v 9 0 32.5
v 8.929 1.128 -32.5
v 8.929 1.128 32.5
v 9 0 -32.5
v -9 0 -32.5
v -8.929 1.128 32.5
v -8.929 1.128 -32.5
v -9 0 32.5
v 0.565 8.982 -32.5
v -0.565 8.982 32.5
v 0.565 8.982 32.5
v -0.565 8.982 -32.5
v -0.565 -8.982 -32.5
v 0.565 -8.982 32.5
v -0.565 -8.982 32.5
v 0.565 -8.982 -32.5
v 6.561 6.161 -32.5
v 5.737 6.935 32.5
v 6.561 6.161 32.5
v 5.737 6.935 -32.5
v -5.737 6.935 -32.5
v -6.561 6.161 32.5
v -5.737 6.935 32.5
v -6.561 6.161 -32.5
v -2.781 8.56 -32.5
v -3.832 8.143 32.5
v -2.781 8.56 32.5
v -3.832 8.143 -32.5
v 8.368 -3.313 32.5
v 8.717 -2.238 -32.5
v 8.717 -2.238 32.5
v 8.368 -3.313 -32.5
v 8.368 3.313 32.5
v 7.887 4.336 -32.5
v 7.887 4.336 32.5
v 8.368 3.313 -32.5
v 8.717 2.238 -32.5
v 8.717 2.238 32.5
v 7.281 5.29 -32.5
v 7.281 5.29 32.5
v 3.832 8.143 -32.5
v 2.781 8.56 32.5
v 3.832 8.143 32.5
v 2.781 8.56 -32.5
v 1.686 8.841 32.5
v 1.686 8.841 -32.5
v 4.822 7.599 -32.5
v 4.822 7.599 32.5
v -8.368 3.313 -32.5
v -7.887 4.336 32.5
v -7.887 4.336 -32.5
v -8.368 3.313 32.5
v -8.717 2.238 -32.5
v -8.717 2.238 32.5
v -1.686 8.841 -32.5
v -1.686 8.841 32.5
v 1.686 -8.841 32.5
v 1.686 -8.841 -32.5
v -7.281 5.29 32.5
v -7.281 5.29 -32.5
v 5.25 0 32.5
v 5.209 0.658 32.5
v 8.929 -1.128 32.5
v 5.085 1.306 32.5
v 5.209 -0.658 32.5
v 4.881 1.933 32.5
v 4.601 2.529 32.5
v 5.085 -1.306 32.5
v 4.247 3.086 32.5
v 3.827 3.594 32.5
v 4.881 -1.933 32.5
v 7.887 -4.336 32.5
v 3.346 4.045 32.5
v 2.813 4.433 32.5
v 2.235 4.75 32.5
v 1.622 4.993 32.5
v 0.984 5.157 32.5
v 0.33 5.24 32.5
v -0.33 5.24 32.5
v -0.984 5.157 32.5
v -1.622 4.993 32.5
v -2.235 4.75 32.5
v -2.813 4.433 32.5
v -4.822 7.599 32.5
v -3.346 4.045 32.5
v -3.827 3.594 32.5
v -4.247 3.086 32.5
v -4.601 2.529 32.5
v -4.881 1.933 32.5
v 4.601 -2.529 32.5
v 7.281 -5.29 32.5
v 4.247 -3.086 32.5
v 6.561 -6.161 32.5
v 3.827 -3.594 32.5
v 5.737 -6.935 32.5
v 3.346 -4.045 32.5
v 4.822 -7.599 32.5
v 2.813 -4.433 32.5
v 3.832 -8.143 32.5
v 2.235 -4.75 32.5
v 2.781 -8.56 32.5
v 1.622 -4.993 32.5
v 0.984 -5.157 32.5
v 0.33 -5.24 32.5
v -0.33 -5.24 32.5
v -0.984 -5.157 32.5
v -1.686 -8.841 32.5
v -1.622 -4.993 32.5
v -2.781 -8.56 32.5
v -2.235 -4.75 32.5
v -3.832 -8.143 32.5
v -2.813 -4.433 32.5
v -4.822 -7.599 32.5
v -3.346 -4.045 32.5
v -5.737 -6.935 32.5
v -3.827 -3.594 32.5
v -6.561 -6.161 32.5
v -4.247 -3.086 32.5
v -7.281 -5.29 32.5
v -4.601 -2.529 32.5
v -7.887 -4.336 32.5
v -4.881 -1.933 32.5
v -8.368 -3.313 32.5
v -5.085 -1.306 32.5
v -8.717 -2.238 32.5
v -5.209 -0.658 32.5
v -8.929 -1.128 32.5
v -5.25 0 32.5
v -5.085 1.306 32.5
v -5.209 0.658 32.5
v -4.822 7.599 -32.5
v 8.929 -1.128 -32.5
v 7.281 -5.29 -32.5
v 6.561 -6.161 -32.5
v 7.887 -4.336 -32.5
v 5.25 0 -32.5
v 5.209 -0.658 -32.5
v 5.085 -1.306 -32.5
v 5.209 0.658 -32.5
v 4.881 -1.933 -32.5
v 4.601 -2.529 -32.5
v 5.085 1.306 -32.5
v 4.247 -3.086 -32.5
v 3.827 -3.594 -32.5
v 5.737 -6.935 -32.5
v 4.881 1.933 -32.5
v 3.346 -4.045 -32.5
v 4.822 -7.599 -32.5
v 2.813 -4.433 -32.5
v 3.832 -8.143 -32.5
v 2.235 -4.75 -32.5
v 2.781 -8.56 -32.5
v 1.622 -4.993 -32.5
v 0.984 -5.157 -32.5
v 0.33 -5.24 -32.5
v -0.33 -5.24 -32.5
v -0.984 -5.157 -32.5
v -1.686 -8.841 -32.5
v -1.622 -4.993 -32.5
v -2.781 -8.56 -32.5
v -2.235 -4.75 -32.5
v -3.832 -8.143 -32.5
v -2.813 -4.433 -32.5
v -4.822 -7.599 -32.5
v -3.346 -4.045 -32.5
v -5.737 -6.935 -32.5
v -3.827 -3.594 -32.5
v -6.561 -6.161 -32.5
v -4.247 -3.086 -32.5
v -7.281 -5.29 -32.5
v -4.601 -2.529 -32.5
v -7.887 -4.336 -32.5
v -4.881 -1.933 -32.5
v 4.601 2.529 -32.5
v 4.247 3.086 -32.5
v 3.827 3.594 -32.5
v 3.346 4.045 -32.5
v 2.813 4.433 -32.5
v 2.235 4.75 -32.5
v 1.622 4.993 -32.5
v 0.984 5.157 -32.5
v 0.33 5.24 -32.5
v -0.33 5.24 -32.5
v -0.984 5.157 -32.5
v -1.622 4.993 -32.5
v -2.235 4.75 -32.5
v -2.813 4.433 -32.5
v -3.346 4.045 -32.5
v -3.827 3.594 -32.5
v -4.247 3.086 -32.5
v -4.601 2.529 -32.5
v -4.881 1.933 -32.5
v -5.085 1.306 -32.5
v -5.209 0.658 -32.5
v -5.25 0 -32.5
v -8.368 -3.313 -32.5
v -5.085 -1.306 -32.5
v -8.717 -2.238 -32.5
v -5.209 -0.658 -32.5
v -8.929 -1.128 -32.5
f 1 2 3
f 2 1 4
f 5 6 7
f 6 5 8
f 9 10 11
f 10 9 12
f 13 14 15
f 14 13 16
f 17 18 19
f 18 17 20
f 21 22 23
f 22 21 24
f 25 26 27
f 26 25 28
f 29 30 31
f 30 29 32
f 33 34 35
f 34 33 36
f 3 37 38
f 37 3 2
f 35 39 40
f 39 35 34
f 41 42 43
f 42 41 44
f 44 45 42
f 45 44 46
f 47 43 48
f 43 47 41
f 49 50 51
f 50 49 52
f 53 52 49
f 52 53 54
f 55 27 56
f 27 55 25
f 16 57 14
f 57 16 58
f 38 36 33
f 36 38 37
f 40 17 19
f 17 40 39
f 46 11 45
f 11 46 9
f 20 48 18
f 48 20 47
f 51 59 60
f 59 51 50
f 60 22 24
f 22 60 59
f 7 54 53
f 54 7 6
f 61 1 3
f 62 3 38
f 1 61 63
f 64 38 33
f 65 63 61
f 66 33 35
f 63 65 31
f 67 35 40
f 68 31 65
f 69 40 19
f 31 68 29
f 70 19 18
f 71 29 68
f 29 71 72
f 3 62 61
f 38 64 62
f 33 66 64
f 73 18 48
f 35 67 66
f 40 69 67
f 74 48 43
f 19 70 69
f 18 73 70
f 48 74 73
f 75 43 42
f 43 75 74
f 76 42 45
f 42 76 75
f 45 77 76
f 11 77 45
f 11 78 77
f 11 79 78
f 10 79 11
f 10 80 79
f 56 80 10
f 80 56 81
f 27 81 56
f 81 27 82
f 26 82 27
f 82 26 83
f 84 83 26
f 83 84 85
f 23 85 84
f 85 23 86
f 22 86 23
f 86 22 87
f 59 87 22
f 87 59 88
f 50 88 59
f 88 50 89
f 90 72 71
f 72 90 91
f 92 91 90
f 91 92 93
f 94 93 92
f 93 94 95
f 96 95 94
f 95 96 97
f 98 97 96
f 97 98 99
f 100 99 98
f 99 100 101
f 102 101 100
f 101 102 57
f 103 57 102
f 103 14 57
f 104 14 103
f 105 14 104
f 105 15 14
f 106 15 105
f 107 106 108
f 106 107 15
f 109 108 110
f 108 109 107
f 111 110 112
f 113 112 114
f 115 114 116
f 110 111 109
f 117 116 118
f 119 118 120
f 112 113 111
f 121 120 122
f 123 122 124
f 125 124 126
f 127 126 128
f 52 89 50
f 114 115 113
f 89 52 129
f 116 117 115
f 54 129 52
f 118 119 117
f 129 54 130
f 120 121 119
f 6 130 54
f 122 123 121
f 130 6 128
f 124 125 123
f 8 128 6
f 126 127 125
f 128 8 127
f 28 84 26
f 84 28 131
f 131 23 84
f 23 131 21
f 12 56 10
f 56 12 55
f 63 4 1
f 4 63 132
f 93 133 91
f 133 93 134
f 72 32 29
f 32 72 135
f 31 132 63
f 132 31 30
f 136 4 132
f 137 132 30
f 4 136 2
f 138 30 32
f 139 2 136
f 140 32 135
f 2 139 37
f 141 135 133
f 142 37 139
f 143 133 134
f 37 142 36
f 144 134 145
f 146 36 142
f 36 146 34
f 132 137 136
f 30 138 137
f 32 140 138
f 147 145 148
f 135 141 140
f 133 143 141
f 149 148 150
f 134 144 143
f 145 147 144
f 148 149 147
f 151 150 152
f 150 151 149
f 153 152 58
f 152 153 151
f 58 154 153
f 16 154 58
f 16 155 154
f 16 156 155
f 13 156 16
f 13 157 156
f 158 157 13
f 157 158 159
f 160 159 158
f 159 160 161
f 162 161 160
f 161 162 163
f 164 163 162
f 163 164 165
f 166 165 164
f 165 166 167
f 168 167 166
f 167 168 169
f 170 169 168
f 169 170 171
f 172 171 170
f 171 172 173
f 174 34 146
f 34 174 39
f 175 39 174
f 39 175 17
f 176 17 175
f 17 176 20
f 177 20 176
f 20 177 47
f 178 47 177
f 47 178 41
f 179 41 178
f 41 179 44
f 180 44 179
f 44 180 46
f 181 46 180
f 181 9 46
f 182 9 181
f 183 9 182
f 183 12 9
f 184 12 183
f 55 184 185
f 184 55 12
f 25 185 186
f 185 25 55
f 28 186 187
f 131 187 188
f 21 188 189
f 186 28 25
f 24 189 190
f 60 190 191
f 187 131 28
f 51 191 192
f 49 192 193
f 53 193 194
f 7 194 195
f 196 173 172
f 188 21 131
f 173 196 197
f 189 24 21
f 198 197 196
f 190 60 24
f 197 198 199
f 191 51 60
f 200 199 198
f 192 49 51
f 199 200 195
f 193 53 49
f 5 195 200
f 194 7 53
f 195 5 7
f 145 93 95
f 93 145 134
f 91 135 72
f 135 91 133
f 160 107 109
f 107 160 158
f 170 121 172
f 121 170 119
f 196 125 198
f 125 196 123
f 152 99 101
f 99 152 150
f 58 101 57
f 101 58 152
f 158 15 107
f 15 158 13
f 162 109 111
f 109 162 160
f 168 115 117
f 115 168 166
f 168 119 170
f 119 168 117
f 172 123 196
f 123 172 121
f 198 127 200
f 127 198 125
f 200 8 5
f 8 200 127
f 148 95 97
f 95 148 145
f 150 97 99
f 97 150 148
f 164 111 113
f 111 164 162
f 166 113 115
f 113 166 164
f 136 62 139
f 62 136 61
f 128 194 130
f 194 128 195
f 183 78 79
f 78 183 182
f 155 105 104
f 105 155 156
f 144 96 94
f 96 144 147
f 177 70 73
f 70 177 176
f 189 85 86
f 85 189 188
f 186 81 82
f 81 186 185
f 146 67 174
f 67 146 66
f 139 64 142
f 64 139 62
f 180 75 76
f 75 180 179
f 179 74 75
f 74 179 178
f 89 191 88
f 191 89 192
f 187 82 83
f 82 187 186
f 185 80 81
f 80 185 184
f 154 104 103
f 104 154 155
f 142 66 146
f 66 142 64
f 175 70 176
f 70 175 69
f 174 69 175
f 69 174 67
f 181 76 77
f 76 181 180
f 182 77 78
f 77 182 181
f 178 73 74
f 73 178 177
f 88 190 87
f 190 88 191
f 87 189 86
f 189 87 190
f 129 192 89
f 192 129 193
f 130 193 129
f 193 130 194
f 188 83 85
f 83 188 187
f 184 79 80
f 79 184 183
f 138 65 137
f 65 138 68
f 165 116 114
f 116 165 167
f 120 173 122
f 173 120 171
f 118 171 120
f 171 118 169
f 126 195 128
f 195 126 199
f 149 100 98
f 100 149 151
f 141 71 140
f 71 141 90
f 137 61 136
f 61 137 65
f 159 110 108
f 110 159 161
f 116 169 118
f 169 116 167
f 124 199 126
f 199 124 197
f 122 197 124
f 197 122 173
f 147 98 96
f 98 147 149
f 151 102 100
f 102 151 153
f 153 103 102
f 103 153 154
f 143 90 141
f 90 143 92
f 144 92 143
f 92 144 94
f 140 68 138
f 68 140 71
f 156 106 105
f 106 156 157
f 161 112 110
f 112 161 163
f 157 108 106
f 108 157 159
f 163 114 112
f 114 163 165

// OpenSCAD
$fn = 50;


difference() {
	union() {
		translate(v = [0, 0, -32.5000000000]) {
			cylinder(h = 65, r = 9.0000000000);
		}
	}
	union() {
		translate(v = [0, 0, -100.0000000000]) {
			cylinder(h = 200, r = 5.2500000000);
		}
	}
}
